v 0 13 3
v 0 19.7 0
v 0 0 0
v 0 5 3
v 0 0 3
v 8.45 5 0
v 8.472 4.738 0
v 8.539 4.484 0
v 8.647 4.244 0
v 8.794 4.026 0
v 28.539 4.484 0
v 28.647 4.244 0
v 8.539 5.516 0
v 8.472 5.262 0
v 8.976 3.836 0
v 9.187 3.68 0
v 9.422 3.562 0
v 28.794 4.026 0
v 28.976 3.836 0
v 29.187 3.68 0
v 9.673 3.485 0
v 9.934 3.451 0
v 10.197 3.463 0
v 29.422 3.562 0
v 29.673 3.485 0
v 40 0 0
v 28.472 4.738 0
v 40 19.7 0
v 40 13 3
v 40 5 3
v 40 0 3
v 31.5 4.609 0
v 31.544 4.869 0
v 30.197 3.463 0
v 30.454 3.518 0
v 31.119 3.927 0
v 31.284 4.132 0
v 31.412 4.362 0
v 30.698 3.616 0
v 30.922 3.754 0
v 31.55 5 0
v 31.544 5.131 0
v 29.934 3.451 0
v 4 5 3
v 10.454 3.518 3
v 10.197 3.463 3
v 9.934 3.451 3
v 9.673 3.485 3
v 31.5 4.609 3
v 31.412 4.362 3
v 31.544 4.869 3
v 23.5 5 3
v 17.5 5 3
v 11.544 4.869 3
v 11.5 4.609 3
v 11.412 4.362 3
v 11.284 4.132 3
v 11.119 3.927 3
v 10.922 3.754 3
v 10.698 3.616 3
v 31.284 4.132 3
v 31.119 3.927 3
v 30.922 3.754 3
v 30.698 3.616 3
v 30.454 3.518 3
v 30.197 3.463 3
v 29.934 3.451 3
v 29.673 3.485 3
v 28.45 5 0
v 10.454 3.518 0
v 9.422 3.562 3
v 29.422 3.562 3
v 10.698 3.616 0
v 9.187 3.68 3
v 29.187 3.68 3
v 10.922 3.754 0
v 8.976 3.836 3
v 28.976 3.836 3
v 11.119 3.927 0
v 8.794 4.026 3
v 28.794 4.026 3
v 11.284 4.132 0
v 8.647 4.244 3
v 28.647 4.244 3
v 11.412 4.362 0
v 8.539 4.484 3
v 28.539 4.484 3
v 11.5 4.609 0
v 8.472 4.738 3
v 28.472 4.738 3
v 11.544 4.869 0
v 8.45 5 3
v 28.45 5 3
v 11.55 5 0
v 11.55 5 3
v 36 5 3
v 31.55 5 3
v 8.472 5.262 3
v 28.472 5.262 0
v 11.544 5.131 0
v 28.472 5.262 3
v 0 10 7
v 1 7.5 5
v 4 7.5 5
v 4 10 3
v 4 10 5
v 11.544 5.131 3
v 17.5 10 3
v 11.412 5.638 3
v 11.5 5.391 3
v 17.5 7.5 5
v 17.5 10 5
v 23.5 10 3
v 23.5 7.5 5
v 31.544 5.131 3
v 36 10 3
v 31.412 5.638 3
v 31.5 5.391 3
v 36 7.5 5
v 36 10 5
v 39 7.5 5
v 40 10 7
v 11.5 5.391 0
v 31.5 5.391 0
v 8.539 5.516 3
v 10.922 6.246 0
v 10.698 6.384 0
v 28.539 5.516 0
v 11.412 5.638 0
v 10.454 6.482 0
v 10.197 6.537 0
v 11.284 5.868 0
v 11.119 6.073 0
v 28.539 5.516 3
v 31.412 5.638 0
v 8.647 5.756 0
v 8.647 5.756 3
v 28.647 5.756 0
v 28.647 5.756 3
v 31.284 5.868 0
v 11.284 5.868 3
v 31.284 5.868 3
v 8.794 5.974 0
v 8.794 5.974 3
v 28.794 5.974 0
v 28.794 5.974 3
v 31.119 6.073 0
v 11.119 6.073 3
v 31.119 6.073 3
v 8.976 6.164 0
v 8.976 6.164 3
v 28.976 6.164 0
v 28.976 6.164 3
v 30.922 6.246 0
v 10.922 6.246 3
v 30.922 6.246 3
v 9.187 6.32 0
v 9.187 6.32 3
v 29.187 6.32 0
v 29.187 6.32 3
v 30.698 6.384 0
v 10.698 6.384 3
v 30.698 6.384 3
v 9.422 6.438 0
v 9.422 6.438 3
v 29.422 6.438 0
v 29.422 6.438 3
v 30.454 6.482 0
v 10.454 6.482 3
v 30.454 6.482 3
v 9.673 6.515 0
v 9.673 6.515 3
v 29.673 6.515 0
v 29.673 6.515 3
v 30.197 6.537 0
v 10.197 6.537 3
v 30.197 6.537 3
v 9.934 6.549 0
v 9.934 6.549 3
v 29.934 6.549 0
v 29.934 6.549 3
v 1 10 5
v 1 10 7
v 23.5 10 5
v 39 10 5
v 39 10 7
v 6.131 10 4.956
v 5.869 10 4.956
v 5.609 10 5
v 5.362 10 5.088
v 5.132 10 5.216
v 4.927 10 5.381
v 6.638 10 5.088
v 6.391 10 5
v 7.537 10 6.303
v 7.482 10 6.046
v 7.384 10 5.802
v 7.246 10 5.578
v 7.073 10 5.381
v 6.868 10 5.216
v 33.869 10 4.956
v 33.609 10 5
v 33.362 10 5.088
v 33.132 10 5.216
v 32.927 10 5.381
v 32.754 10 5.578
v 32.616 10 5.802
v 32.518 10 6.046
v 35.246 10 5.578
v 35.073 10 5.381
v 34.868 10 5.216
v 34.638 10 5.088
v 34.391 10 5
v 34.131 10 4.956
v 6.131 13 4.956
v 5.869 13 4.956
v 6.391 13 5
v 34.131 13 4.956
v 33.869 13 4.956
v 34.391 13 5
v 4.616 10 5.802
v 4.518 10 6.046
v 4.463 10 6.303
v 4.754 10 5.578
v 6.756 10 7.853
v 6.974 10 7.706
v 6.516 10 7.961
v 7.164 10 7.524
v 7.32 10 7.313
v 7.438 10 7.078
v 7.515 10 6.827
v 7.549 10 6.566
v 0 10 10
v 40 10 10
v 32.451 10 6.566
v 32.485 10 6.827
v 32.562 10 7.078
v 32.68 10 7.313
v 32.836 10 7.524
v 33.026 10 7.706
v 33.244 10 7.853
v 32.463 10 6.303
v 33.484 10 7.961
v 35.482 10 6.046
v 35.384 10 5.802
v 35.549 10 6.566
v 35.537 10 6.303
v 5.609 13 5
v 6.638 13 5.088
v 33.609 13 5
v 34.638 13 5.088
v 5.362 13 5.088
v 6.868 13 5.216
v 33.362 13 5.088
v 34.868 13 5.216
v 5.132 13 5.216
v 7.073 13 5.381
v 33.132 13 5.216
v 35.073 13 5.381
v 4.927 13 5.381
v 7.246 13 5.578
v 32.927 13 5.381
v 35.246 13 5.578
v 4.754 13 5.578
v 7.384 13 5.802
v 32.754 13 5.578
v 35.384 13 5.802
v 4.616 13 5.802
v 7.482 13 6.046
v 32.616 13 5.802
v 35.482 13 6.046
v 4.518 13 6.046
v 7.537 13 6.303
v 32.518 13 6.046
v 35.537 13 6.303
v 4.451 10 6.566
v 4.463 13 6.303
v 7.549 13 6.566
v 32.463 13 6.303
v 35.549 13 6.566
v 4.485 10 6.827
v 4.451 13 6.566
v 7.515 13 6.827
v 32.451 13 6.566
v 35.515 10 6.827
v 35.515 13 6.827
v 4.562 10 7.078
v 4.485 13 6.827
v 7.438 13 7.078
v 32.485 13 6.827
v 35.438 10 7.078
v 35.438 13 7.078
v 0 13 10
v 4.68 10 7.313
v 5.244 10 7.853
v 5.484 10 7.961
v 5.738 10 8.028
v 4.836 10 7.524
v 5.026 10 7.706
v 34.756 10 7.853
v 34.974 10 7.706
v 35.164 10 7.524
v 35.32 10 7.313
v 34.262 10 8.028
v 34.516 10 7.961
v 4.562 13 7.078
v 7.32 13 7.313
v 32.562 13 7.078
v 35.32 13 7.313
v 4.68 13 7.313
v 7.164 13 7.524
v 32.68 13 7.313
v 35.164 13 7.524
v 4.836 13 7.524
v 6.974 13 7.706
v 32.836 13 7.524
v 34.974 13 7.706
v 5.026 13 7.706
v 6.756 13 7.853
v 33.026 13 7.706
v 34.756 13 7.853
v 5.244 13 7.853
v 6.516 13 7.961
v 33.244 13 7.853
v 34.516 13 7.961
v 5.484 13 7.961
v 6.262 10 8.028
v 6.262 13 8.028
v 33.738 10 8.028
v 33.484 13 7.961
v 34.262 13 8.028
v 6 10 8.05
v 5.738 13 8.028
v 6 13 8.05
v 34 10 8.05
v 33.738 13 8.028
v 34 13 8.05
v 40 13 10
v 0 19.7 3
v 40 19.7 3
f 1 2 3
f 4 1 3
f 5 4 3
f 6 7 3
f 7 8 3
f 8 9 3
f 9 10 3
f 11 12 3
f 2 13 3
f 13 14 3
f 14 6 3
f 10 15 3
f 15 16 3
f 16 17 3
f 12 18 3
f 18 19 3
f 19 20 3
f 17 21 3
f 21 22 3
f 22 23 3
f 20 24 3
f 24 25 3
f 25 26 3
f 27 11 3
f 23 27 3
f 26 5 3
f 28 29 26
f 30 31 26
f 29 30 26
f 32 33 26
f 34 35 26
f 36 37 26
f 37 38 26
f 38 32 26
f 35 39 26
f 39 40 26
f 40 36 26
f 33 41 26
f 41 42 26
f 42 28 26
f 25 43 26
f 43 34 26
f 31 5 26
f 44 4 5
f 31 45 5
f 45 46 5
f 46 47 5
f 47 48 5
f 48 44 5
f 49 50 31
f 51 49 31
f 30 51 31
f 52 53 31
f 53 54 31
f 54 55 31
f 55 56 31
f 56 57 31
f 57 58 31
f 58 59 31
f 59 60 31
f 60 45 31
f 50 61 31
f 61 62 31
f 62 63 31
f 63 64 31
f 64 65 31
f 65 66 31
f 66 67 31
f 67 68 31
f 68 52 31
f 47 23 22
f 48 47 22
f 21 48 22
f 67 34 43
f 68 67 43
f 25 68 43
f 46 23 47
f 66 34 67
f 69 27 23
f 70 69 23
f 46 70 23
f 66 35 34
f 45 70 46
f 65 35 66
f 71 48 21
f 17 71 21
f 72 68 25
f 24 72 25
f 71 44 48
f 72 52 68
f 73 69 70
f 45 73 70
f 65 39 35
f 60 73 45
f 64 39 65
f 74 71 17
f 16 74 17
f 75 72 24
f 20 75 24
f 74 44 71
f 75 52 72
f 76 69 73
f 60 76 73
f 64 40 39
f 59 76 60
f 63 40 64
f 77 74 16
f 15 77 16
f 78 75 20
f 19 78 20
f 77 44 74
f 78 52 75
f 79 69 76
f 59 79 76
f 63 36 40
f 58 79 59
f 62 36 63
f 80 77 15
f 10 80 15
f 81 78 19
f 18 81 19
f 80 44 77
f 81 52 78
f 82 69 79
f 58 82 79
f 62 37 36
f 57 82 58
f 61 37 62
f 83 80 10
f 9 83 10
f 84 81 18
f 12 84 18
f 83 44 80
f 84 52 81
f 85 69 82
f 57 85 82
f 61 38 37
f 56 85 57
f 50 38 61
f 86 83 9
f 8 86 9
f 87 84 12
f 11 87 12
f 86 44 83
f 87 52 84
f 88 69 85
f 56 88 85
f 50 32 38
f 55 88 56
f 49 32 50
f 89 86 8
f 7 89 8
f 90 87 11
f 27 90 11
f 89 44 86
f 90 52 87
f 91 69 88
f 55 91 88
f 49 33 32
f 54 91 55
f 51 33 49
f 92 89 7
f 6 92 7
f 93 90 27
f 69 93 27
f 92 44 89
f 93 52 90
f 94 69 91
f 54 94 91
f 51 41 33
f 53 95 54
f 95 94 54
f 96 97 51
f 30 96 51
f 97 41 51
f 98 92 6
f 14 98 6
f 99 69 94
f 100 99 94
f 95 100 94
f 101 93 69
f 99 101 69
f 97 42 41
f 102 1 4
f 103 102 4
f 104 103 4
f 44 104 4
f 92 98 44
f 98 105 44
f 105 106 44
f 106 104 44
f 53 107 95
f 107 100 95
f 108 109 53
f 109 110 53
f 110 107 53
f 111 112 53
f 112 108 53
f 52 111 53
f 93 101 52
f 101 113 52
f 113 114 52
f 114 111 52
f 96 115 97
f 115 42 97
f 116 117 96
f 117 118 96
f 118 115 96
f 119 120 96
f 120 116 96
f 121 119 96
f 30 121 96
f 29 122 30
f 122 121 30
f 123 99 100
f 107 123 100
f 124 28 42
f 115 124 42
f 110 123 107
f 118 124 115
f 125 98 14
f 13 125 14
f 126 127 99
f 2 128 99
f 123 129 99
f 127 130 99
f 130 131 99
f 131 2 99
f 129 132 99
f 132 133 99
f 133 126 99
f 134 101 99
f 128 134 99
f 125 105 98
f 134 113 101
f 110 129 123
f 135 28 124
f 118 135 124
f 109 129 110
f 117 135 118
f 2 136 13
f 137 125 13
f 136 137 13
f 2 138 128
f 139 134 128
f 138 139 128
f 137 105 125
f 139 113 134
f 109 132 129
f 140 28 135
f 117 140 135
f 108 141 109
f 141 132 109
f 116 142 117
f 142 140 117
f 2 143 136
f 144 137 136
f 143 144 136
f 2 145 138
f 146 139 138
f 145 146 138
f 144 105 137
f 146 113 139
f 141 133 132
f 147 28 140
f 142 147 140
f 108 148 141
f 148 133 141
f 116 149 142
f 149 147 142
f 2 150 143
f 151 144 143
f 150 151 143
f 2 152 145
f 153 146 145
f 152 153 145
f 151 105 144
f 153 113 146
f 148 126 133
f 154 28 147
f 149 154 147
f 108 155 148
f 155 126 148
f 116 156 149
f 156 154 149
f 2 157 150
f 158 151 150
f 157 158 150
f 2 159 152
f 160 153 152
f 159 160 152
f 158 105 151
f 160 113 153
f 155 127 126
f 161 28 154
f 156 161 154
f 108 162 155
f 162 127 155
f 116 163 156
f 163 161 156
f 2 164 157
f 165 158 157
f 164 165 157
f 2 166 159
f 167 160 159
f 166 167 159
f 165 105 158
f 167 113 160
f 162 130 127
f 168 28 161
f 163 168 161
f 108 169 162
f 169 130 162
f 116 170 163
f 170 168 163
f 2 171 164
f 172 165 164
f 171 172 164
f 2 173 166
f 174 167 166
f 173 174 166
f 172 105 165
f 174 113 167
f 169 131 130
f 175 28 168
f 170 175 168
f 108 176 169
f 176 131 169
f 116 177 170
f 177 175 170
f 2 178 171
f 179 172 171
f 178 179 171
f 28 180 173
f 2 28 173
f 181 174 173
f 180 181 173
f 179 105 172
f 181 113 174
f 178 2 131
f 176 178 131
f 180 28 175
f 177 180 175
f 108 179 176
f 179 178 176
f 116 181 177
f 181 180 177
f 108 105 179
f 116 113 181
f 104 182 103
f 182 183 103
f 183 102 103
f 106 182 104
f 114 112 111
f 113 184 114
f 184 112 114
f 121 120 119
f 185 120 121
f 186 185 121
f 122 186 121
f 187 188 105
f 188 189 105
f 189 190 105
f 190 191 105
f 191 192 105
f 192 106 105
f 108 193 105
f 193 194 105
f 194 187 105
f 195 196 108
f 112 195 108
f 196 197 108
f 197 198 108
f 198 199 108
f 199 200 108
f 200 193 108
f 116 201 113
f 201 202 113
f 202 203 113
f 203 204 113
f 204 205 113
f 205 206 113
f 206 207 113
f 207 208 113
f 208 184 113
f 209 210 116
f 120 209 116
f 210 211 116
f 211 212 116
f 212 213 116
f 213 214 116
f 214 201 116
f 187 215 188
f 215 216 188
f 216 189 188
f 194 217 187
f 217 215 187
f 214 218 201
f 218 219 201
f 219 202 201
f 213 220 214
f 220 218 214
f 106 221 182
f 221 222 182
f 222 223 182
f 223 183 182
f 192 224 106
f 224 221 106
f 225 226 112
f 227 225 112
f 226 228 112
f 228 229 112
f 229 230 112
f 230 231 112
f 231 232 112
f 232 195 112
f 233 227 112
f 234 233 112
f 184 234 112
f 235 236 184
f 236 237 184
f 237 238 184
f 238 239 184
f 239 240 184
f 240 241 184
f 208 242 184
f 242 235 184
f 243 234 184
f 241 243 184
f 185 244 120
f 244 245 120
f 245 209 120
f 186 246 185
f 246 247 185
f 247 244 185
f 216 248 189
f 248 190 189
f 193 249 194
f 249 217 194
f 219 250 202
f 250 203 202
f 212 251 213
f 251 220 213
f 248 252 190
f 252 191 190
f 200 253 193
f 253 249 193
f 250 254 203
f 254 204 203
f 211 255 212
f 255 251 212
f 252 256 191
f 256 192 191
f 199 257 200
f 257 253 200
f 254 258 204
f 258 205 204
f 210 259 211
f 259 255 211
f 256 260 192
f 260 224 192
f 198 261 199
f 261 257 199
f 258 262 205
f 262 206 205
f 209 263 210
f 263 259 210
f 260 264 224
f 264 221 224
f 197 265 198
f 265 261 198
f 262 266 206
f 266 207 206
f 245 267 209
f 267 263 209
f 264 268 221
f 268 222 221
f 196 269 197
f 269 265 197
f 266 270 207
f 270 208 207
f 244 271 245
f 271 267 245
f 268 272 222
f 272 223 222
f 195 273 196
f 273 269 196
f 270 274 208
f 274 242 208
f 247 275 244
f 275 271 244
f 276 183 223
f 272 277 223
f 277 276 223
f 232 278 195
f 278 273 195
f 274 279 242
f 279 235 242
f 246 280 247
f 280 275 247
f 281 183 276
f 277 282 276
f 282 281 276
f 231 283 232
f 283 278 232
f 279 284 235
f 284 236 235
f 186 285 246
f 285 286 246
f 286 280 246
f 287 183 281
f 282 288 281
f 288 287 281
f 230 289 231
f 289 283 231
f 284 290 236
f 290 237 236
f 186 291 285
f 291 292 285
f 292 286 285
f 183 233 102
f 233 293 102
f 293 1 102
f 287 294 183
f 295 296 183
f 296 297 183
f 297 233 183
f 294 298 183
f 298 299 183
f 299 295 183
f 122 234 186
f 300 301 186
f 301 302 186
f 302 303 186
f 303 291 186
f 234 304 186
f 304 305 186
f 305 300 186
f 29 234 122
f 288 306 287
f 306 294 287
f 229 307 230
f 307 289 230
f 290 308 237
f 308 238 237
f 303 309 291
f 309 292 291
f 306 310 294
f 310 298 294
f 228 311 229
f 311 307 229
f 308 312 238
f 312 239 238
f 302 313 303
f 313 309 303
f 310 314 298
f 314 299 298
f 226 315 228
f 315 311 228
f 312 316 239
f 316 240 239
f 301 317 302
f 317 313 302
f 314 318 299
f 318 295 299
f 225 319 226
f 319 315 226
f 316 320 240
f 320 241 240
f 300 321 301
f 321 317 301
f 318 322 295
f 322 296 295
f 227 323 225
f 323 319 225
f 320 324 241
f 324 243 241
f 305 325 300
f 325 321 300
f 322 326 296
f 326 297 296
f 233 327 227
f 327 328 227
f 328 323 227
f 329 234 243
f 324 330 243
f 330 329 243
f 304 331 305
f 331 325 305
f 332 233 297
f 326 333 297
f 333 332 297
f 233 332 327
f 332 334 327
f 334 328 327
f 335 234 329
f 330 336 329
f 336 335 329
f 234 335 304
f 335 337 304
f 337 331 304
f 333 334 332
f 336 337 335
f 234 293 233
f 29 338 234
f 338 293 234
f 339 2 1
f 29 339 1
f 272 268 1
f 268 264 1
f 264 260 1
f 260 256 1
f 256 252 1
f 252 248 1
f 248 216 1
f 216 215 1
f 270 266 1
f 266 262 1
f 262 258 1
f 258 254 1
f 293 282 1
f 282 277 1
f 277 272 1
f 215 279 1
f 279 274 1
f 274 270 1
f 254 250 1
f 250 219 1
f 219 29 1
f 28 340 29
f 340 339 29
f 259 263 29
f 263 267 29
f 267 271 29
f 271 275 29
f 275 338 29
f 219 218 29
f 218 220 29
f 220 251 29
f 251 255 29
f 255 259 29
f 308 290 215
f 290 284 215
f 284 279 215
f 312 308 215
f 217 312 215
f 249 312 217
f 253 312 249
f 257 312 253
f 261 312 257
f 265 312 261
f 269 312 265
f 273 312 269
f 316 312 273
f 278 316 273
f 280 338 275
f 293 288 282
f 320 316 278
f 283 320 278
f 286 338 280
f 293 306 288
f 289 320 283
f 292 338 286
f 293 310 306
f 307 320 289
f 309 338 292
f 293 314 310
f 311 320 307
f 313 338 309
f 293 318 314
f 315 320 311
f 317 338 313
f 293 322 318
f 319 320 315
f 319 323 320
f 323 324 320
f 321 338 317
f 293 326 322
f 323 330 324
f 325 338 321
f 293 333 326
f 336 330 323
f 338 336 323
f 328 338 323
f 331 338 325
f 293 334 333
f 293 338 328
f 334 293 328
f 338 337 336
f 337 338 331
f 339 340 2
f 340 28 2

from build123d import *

# Parameters (mm, degrees)
SKETCH_1_W          = 40
SKETCH_1_H          = 6.7
EXTRUDE_1_DEPTH     = 3
SKETCH_1_3_W        = 40
SKETCH_1_3_H        = 10
SKETCH_1_3_R        = 1.55
EXTRUDE_2_DEPTH     = 3
SKETCH_1_5_W        = 40
SKETCH_1_5_H        = 3
EXTRUDE_3_DEPTH     = 10
SKETCH_2_R          = 1.55
CUT_EXTRUDE_1_DEPTH = 3
SKETCH_3_W          = 6
SKETCH_3_H          = 2
EXTRUDE_4_DEPTH     = 5
CUT_EXTRUDE_2_DEPTH = 44


with BuildPart() as part:
    # 草图1 → 凸台-拉伸1 (new body)
    with BuildSketch(Plane.XY):
        with Locations((20, 16.35)):
            Rectangle(SKETCH_1_W, SKETCH_1_H)
    extrude(amount=EXTRUDE_1_DEPTH)



with BuildPart() as body_2:
    # 草图1<3> → 凸台-拉伸2 (new body)
    with BuildSketch(Plane.XY):
        with Locations((20, 5)):
            Rectangle(SKETCH_1_3_W, SKETCH_1_3_H)
        with Locations((10, 5)):
            Circle(SKETCH_1_3_R, mode=Mode.SUBTRACT)
        with Locations((30, 5)):
            Circle(SKETCH_1_3_R, mode=Mode.SUBTRACT)
    extrude(amount=EXTRUDE_2_DEPTH)


with BuildPart() as part_1:
    add(part.part)

    add(body_2.part)  # 凸台-拉伸3 merges body 2
    # 草图1<5> → 凸台-拉伸3 (add)
    with BuildSketch(Plane.XY):
        with Locations((20, 11.5)):
            Rectangle(SKETCH_1_5_W, SKETCH_1_5_H)
    extrude(amount=EXTRUDE_3_DEPTH)

    # 草图2 → 切除-拉伸1 (cut)
    with BuildSketch(Plane(origin=(0, 13, 0), x_dir=(1, 0, 0), z_dir=(0, 1, 0))):
        with Locations((6, -6.5)):
            Circle(SKETCH_2_R)
        with Locations((34, -6.5)):
            Circle(SKETCH_2_R)
    extrude(amount=-CUT_EXTRUDE_1_DEPTH, mode=Mode.SUBTRACT)

    # 草图3 → 凸台-拉伸4 (add)
    with BuildSketch(Plane.XZ.offset(-10)):
        Polygon((0, 7), (0, 3), (4, 3), (4, 5), (1, 5), (1, 7), align=None)
        with Locations((20.5, 4)):
            Rectangle(SKETCH_3_W, SKETCH_3_H)
        Polygon((36, 5), (36, 3), (40, 3), (40, 7), (39, 7), (39, 5), align=None)
    extrude(amount=EXTRUDE_4_DEPTH)

    # 草图4 → 切除-拉伸2 (cut)
    with BuildSketch(Plane.ZY):
        Polygon((7, 10), (3, 5), (7, 5), align=None)
    extrude(amount=-CUT_EXTRUDE_2_DEPTH, mode=Mode.SUBTRACT)


solid = part_1.part
